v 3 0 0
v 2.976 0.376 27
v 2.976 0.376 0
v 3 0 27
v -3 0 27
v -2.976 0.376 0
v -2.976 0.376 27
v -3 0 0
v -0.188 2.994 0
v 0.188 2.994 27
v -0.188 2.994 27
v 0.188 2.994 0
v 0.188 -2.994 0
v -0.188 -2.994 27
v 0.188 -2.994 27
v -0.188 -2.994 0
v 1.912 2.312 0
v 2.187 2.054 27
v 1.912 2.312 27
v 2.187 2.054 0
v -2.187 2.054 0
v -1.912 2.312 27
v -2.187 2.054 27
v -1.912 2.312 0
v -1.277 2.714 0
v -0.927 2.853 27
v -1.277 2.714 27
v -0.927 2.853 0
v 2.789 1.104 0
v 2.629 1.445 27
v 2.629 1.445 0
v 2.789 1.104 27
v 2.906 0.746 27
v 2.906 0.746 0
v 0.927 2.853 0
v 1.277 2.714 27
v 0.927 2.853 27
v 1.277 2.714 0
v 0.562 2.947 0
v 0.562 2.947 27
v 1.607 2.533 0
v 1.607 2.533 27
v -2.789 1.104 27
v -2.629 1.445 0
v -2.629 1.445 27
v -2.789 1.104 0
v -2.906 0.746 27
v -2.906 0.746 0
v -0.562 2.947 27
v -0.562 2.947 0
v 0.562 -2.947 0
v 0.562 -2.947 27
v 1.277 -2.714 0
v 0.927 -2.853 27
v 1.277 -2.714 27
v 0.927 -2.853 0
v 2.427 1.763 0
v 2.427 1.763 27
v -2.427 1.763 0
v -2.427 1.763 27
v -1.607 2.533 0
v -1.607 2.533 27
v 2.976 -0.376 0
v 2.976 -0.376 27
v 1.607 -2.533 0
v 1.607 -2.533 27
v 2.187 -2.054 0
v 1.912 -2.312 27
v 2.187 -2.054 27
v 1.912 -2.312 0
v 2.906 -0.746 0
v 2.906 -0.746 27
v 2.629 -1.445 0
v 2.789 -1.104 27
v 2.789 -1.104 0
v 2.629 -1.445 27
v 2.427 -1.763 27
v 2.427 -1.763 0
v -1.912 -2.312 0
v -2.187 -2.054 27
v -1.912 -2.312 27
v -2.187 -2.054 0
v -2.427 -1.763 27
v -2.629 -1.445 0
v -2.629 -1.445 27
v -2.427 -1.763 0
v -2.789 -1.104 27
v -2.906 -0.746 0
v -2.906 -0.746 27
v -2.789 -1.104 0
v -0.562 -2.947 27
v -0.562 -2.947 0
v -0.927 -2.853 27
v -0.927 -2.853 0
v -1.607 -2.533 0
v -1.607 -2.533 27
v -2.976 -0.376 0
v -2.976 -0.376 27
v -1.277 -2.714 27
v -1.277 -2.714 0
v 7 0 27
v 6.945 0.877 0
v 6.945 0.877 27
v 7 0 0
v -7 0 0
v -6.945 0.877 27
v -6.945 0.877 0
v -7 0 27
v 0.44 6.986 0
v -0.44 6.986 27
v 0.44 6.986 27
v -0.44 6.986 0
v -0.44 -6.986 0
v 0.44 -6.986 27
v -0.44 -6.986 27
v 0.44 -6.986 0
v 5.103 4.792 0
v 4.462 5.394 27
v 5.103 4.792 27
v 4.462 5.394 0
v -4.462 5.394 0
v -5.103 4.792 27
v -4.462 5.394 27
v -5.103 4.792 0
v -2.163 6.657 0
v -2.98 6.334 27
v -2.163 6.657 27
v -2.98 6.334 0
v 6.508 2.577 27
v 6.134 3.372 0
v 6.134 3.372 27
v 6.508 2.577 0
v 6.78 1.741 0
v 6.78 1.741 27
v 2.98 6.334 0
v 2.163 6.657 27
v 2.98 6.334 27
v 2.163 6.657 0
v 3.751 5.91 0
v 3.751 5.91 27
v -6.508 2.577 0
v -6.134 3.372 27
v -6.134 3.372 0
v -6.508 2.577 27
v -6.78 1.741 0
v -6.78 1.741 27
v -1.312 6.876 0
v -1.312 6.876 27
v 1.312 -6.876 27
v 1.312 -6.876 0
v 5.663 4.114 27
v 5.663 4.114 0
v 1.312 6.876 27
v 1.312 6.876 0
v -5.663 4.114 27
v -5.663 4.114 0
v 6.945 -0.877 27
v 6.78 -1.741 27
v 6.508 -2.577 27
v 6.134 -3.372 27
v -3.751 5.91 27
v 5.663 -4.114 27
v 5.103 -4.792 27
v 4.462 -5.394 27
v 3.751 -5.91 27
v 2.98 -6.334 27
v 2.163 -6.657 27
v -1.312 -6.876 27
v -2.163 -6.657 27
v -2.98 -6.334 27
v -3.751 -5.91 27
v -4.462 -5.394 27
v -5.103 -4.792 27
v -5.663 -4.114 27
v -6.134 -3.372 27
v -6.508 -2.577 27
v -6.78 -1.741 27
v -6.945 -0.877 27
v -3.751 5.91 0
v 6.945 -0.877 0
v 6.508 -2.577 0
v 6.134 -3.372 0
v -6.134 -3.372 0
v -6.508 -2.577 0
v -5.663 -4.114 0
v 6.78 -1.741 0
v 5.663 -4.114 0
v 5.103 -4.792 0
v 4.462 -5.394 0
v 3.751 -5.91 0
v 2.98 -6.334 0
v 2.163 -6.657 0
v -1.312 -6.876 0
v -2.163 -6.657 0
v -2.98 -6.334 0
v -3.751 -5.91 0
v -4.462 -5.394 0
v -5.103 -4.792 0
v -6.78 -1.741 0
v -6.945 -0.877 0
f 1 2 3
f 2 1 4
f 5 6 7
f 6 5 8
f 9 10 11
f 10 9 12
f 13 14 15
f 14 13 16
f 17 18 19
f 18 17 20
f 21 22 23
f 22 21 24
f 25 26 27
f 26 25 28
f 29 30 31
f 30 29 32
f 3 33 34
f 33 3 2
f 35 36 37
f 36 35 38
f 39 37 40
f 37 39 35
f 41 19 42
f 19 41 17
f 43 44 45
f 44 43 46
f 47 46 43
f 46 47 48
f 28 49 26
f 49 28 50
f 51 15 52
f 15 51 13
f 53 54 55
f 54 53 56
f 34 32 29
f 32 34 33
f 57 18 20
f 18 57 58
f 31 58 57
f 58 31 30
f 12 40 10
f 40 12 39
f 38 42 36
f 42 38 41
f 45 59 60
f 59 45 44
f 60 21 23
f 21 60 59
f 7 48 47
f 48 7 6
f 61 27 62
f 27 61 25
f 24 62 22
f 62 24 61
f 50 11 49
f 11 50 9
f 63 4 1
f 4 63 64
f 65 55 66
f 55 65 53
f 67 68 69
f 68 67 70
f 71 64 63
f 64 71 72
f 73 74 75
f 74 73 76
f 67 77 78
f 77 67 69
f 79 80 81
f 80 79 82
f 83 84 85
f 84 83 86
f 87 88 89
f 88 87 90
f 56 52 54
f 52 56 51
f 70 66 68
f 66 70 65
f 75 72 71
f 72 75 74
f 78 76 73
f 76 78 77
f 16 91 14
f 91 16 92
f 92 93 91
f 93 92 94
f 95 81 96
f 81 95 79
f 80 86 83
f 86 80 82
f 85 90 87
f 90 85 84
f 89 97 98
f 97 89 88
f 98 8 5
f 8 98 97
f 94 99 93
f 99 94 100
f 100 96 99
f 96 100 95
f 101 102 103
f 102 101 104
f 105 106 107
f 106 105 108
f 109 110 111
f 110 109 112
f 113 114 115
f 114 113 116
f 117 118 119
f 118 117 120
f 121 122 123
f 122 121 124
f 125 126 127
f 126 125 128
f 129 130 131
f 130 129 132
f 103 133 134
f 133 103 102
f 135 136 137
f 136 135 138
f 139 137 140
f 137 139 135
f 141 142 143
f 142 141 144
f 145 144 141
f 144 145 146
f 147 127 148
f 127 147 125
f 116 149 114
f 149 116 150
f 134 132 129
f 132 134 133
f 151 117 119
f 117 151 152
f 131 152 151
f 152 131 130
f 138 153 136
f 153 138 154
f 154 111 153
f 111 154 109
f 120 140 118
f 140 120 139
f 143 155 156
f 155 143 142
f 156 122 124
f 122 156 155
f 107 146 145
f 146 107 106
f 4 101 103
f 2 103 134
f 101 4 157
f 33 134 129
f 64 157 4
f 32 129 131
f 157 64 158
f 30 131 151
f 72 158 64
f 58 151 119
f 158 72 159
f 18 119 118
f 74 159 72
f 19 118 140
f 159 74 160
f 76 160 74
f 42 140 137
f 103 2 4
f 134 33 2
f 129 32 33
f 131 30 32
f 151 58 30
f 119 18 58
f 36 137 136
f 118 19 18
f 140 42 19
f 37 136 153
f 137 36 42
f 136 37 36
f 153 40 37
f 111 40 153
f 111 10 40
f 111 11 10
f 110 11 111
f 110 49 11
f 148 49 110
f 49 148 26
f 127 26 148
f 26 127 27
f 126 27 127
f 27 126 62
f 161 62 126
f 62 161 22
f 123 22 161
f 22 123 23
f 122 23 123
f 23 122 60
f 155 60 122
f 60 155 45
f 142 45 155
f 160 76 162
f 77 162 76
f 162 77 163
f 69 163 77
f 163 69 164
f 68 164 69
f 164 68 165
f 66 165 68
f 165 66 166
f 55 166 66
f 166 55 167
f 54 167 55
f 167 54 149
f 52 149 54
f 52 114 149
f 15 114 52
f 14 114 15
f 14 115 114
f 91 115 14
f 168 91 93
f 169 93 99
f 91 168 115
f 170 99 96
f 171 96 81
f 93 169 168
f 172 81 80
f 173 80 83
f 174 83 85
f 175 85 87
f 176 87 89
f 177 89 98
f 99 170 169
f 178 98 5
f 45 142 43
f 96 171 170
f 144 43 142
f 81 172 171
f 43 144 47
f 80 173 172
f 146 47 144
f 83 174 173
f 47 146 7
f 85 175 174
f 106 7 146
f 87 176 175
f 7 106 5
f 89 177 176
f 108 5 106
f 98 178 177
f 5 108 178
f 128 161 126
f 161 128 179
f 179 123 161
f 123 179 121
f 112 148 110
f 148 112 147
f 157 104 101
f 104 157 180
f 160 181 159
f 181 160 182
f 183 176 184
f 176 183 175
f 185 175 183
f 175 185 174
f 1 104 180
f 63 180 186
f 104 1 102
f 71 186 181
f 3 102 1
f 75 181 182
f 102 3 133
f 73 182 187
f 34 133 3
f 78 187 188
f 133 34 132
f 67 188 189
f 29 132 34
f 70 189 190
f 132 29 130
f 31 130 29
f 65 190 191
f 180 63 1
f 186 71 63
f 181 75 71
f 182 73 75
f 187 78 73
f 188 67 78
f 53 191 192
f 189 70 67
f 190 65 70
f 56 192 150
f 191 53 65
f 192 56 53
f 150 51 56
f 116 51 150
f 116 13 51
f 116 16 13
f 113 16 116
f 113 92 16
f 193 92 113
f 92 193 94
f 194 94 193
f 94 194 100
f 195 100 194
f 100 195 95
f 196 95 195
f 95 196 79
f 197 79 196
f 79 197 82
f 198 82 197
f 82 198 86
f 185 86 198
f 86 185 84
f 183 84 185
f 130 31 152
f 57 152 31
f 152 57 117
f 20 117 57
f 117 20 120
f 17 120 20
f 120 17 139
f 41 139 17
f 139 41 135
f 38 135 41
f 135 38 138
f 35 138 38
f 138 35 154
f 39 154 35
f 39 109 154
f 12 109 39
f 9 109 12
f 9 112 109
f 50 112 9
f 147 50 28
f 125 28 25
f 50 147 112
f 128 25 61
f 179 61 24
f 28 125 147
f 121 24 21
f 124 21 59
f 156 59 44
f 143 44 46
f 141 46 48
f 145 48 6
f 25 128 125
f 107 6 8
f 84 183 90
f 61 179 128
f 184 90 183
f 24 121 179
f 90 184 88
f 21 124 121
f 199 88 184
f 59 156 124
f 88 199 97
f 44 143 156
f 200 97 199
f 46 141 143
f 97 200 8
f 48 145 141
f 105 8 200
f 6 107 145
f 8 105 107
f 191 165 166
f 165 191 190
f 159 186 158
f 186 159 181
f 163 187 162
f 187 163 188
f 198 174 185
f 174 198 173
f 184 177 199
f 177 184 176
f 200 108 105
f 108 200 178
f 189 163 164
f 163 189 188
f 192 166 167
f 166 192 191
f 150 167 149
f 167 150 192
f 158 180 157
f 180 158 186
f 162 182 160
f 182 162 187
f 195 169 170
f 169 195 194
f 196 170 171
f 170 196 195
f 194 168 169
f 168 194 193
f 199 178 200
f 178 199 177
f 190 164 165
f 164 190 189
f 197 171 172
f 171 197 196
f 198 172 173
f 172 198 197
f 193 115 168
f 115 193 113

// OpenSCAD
$fn = 50;


difference() {
	union() {
		translate(v = [0, 0, 0]) {
			rotate(a = [0, 0, 0]) {
				cylinder(h = 27, r = 7.0000000000);
			}
		}
	}
	union() {
		translate(v = [0.0000000000, 0.0000000000, 0]) {
			rotate(a = [0, 0, 0]) {
				translate(v = [0, 0, -50]) {
					rotate(a = [0, 0, 0]) {
						cylinder(h = 100, r = 3.0000000000);
					}
				}
			}
		}
		translate(v = [0.0000000000, 0.0000000000, 0]) {
			rotate(a = [0, 0, 0]) {
				translate(v = [0, 0, -50]) {
					rotate(a = [0, 0, 0]) {
						cylinder(h = 100, r = 1.5000000000);
					}
				}
			}
		}
	}
}
